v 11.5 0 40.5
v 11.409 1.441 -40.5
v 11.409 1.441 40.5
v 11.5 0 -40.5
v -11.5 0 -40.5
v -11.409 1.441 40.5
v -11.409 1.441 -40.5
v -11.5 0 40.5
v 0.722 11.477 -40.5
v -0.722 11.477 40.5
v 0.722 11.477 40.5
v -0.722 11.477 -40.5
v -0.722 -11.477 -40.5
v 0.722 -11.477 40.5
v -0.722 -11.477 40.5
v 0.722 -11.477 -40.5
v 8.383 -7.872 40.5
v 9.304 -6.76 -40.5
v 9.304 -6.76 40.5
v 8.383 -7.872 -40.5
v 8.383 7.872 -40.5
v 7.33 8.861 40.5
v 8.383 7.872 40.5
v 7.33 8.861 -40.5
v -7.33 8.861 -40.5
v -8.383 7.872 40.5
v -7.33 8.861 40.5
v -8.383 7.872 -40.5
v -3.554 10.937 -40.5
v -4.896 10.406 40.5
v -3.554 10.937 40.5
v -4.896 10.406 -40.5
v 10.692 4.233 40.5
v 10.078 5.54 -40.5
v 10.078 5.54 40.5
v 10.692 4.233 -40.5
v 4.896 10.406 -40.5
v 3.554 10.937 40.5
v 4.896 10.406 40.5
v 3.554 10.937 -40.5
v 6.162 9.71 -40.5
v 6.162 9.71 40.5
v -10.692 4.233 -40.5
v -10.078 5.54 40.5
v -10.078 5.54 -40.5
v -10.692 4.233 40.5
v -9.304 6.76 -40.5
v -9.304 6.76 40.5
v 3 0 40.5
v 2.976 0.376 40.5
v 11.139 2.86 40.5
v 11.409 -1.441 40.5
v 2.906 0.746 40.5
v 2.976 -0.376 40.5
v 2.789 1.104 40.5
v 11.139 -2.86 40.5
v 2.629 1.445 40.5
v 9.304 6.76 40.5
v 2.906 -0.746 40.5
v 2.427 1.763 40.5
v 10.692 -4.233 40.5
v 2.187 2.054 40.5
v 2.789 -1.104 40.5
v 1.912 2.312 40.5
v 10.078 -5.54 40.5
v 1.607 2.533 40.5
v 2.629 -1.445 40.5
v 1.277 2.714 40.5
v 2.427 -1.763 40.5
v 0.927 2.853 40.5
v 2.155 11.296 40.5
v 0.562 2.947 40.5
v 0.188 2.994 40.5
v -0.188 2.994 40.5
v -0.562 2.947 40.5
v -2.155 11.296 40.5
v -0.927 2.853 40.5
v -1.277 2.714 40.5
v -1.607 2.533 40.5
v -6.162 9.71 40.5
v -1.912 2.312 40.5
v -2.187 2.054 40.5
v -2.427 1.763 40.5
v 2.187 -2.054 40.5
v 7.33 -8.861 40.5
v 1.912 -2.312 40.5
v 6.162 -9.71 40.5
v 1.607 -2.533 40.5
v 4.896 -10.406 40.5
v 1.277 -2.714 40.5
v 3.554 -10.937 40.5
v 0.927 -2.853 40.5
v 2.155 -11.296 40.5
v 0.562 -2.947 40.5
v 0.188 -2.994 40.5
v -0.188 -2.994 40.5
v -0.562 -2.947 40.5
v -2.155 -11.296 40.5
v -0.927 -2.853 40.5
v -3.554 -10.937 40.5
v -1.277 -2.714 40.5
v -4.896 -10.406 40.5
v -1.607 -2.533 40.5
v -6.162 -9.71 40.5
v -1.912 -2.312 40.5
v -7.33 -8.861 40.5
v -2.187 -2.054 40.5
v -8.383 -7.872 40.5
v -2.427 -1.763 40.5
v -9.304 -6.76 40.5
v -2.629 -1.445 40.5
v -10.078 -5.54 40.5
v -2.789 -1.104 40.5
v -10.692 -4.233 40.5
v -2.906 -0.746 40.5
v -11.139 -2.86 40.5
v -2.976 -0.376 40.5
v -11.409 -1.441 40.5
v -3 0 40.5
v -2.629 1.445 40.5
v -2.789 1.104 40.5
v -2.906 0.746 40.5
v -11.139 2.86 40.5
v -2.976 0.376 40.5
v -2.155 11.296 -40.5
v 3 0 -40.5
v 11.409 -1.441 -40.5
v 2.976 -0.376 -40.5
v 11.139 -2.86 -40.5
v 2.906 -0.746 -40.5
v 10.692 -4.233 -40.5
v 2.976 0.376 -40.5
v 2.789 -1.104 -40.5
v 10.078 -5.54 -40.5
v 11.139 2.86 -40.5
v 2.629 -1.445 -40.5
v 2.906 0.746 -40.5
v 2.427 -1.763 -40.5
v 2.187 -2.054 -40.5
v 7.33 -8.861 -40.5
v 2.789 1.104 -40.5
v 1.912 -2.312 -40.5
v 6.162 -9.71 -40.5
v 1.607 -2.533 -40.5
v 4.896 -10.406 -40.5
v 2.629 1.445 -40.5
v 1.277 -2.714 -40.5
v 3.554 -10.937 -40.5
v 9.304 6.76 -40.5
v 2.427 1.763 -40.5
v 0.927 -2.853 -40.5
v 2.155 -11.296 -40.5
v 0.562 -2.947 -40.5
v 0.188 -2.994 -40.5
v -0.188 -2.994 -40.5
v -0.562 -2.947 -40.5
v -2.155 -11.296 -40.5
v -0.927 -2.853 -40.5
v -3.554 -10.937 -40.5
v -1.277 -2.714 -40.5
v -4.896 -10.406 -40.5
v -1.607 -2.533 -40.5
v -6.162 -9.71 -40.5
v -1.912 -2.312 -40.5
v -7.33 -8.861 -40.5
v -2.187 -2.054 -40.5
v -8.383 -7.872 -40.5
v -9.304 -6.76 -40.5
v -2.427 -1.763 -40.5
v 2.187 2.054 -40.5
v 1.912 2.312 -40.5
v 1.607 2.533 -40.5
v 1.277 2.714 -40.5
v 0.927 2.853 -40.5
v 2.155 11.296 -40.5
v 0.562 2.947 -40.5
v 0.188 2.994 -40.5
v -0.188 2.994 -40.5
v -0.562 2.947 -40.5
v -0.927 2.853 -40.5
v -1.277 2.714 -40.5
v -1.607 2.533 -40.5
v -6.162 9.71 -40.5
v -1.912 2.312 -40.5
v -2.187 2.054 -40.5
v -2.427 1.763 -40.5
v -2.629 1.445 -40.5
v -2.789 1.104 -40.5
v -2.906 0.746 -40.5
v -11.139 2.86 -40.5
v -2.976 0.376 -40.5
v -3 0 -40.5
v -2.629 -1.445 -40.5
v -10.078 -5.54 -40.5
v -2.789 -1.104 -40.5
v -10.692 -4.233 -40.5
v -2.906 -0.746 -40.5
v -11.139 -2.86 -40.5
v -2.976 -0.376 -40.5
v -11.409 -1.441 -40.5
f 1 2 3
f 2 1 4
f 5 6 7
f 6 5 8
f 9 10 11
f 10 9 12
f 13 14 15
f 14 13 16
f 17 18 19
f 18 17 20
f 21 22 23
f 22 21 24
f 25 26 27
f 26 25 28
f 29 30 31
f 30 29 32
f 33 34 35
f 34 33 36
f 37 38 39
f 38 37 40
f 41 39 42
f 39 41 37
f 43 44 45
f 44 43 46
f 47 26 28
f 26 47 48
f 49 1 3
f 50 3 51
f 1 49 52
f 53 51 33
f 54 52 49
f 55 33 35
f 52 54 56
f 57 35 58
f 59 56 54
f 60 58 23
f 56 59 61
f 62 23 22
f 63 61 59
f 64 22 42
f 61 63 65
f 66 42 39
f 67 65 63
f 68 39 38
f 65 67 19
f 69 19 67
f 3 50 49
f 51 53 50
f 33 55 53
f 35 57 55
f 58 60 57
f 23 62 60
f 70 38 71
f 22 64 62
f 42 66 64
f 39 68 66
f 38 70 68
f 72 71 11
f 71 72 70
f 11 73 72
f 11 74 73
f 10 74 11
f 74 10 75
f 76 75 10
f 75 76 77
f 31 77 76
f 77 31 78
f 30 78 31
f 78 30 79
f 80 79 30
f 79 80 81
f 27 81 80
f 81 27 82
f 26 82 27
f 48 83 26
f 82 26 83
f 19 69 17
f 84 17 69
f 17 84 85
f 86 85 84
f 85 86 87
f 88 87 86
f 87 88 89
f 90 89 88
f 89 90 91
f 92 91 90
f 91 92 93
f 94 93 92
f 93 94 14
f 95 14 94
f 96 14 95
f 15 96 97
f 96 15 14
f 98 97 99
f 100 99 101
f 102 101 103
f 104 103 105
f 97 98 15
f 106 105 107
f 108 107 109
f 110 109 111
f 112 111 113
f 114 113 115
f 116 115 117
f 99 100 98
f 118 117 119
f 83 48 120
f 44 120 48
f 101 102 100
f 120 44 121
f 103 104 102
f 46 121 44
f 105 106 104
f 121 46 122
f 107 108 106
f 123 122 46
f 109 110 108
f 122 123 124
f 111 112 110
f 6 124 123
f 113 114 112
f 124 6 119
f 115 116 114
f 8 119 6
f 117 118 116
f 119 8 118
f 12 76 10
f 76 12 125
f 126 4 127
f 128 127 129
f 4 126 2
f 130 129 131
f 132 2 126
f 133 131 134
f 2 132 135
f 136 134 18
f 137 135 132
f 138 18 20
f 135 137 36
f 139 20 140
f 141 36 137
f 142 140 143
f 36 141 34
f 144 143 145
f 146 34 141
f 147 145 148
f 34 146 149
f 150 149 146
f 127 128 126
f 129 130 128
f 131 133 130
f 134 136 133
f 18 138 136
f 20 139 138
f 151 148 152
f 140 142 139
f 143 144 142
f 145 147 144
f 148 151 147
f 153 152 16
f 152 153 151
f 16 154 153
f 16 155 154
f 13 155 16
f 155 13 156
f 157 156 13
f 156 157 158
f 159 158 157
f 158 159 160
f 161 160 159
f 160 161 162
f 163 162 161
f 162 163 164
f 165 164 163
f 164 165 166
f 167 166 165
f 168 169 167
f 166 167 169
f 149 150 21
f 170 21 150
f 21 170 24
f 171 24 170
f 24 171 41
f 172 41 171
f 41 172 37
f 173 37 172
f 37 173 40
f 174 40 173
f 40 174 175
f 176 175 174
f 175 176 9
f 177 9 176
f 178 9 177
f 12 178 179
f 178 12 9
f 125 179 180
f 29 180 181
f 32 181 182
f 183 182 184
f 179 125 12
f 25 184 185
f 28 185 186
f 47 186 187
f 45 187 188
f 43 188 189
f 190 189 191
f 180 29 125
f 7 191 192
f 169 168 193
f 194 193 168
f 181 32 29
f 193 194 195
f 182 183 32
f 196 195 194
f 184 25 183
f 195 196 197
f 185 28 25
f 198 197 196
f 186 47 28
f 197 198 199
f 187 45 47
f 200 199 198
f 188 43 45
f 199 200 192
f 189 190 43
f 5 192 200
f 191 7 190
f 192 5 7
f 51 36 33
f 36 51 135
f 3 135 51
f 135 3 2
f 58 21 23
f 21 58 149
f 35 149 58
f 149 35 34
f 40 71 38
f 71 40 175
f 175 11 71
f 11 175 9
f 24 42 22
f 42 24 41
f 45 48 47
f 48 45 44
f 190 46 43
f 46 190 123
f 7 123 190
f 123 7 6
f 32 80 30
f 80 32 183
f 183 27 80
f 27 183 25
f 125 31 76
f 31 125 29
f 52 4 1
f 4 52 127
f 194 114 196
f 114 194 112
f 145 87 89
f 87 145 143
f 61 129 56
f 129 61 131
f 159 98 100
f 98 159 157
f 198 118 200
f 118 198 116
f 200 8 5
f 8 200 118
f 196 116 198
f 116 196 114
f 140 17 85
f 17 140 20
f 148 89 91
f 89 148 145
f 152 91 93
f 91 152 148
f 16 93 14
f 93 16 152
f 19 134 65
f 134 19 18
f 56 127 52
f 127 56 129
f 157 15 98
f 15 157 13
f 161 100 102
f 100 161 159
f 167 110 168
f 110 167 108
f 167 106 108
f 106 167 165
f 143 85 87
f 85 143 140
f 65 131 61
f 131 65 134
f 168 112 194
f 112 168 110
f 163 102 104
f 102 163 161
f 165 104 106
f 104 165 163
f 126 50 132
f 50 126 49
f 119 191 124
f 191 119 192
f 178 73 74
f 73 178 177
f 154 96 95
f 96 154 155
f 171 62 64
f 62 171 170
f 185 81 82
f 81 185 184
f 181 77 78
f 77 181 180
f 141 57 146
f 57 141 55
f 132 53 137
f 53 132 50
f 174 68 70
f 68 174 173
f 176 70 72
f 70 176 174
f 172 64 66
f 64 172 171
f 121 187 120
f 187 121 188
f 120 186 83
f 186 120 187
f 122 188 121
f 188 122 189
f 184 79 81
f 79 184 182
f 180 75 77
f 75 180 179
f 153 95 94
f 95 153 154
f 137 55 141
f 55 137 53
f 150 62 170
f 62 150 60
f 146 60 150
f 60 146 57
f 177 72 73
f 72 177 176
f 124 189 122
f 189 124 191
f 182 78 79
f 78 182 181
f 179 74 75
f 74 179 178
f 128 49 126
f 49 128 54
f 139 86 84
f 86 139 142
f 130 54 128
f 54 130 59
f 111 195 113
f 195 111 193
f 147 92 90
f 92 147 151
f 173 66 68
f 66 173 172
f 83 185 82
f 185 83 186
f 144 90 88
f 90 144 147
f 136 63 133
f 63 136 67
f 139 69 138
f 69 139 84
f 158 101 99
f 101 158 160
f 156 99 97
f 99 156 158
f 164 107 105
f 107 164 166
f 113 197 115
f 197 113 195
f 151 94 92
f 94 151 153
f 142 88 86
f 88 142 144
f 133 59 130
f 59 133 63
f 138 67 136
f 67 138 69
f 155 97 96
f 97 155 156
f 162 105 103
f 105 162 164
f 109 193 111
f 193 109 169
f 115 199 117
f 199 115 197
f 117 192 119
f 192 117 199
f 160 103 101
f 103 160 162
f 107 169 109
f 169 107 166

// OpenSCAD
$fn = 50;


difference() {
	union() {
		translate(v = [0, 0, -40.5000000000]) {
			cylinder(h = 81, r = 11.5000000000);
		}
	}
	union() {
		translate(v = [0, 0, -100.0000000000]) {
			cylinder(h = 200, r = 3);
		}
	}
}
